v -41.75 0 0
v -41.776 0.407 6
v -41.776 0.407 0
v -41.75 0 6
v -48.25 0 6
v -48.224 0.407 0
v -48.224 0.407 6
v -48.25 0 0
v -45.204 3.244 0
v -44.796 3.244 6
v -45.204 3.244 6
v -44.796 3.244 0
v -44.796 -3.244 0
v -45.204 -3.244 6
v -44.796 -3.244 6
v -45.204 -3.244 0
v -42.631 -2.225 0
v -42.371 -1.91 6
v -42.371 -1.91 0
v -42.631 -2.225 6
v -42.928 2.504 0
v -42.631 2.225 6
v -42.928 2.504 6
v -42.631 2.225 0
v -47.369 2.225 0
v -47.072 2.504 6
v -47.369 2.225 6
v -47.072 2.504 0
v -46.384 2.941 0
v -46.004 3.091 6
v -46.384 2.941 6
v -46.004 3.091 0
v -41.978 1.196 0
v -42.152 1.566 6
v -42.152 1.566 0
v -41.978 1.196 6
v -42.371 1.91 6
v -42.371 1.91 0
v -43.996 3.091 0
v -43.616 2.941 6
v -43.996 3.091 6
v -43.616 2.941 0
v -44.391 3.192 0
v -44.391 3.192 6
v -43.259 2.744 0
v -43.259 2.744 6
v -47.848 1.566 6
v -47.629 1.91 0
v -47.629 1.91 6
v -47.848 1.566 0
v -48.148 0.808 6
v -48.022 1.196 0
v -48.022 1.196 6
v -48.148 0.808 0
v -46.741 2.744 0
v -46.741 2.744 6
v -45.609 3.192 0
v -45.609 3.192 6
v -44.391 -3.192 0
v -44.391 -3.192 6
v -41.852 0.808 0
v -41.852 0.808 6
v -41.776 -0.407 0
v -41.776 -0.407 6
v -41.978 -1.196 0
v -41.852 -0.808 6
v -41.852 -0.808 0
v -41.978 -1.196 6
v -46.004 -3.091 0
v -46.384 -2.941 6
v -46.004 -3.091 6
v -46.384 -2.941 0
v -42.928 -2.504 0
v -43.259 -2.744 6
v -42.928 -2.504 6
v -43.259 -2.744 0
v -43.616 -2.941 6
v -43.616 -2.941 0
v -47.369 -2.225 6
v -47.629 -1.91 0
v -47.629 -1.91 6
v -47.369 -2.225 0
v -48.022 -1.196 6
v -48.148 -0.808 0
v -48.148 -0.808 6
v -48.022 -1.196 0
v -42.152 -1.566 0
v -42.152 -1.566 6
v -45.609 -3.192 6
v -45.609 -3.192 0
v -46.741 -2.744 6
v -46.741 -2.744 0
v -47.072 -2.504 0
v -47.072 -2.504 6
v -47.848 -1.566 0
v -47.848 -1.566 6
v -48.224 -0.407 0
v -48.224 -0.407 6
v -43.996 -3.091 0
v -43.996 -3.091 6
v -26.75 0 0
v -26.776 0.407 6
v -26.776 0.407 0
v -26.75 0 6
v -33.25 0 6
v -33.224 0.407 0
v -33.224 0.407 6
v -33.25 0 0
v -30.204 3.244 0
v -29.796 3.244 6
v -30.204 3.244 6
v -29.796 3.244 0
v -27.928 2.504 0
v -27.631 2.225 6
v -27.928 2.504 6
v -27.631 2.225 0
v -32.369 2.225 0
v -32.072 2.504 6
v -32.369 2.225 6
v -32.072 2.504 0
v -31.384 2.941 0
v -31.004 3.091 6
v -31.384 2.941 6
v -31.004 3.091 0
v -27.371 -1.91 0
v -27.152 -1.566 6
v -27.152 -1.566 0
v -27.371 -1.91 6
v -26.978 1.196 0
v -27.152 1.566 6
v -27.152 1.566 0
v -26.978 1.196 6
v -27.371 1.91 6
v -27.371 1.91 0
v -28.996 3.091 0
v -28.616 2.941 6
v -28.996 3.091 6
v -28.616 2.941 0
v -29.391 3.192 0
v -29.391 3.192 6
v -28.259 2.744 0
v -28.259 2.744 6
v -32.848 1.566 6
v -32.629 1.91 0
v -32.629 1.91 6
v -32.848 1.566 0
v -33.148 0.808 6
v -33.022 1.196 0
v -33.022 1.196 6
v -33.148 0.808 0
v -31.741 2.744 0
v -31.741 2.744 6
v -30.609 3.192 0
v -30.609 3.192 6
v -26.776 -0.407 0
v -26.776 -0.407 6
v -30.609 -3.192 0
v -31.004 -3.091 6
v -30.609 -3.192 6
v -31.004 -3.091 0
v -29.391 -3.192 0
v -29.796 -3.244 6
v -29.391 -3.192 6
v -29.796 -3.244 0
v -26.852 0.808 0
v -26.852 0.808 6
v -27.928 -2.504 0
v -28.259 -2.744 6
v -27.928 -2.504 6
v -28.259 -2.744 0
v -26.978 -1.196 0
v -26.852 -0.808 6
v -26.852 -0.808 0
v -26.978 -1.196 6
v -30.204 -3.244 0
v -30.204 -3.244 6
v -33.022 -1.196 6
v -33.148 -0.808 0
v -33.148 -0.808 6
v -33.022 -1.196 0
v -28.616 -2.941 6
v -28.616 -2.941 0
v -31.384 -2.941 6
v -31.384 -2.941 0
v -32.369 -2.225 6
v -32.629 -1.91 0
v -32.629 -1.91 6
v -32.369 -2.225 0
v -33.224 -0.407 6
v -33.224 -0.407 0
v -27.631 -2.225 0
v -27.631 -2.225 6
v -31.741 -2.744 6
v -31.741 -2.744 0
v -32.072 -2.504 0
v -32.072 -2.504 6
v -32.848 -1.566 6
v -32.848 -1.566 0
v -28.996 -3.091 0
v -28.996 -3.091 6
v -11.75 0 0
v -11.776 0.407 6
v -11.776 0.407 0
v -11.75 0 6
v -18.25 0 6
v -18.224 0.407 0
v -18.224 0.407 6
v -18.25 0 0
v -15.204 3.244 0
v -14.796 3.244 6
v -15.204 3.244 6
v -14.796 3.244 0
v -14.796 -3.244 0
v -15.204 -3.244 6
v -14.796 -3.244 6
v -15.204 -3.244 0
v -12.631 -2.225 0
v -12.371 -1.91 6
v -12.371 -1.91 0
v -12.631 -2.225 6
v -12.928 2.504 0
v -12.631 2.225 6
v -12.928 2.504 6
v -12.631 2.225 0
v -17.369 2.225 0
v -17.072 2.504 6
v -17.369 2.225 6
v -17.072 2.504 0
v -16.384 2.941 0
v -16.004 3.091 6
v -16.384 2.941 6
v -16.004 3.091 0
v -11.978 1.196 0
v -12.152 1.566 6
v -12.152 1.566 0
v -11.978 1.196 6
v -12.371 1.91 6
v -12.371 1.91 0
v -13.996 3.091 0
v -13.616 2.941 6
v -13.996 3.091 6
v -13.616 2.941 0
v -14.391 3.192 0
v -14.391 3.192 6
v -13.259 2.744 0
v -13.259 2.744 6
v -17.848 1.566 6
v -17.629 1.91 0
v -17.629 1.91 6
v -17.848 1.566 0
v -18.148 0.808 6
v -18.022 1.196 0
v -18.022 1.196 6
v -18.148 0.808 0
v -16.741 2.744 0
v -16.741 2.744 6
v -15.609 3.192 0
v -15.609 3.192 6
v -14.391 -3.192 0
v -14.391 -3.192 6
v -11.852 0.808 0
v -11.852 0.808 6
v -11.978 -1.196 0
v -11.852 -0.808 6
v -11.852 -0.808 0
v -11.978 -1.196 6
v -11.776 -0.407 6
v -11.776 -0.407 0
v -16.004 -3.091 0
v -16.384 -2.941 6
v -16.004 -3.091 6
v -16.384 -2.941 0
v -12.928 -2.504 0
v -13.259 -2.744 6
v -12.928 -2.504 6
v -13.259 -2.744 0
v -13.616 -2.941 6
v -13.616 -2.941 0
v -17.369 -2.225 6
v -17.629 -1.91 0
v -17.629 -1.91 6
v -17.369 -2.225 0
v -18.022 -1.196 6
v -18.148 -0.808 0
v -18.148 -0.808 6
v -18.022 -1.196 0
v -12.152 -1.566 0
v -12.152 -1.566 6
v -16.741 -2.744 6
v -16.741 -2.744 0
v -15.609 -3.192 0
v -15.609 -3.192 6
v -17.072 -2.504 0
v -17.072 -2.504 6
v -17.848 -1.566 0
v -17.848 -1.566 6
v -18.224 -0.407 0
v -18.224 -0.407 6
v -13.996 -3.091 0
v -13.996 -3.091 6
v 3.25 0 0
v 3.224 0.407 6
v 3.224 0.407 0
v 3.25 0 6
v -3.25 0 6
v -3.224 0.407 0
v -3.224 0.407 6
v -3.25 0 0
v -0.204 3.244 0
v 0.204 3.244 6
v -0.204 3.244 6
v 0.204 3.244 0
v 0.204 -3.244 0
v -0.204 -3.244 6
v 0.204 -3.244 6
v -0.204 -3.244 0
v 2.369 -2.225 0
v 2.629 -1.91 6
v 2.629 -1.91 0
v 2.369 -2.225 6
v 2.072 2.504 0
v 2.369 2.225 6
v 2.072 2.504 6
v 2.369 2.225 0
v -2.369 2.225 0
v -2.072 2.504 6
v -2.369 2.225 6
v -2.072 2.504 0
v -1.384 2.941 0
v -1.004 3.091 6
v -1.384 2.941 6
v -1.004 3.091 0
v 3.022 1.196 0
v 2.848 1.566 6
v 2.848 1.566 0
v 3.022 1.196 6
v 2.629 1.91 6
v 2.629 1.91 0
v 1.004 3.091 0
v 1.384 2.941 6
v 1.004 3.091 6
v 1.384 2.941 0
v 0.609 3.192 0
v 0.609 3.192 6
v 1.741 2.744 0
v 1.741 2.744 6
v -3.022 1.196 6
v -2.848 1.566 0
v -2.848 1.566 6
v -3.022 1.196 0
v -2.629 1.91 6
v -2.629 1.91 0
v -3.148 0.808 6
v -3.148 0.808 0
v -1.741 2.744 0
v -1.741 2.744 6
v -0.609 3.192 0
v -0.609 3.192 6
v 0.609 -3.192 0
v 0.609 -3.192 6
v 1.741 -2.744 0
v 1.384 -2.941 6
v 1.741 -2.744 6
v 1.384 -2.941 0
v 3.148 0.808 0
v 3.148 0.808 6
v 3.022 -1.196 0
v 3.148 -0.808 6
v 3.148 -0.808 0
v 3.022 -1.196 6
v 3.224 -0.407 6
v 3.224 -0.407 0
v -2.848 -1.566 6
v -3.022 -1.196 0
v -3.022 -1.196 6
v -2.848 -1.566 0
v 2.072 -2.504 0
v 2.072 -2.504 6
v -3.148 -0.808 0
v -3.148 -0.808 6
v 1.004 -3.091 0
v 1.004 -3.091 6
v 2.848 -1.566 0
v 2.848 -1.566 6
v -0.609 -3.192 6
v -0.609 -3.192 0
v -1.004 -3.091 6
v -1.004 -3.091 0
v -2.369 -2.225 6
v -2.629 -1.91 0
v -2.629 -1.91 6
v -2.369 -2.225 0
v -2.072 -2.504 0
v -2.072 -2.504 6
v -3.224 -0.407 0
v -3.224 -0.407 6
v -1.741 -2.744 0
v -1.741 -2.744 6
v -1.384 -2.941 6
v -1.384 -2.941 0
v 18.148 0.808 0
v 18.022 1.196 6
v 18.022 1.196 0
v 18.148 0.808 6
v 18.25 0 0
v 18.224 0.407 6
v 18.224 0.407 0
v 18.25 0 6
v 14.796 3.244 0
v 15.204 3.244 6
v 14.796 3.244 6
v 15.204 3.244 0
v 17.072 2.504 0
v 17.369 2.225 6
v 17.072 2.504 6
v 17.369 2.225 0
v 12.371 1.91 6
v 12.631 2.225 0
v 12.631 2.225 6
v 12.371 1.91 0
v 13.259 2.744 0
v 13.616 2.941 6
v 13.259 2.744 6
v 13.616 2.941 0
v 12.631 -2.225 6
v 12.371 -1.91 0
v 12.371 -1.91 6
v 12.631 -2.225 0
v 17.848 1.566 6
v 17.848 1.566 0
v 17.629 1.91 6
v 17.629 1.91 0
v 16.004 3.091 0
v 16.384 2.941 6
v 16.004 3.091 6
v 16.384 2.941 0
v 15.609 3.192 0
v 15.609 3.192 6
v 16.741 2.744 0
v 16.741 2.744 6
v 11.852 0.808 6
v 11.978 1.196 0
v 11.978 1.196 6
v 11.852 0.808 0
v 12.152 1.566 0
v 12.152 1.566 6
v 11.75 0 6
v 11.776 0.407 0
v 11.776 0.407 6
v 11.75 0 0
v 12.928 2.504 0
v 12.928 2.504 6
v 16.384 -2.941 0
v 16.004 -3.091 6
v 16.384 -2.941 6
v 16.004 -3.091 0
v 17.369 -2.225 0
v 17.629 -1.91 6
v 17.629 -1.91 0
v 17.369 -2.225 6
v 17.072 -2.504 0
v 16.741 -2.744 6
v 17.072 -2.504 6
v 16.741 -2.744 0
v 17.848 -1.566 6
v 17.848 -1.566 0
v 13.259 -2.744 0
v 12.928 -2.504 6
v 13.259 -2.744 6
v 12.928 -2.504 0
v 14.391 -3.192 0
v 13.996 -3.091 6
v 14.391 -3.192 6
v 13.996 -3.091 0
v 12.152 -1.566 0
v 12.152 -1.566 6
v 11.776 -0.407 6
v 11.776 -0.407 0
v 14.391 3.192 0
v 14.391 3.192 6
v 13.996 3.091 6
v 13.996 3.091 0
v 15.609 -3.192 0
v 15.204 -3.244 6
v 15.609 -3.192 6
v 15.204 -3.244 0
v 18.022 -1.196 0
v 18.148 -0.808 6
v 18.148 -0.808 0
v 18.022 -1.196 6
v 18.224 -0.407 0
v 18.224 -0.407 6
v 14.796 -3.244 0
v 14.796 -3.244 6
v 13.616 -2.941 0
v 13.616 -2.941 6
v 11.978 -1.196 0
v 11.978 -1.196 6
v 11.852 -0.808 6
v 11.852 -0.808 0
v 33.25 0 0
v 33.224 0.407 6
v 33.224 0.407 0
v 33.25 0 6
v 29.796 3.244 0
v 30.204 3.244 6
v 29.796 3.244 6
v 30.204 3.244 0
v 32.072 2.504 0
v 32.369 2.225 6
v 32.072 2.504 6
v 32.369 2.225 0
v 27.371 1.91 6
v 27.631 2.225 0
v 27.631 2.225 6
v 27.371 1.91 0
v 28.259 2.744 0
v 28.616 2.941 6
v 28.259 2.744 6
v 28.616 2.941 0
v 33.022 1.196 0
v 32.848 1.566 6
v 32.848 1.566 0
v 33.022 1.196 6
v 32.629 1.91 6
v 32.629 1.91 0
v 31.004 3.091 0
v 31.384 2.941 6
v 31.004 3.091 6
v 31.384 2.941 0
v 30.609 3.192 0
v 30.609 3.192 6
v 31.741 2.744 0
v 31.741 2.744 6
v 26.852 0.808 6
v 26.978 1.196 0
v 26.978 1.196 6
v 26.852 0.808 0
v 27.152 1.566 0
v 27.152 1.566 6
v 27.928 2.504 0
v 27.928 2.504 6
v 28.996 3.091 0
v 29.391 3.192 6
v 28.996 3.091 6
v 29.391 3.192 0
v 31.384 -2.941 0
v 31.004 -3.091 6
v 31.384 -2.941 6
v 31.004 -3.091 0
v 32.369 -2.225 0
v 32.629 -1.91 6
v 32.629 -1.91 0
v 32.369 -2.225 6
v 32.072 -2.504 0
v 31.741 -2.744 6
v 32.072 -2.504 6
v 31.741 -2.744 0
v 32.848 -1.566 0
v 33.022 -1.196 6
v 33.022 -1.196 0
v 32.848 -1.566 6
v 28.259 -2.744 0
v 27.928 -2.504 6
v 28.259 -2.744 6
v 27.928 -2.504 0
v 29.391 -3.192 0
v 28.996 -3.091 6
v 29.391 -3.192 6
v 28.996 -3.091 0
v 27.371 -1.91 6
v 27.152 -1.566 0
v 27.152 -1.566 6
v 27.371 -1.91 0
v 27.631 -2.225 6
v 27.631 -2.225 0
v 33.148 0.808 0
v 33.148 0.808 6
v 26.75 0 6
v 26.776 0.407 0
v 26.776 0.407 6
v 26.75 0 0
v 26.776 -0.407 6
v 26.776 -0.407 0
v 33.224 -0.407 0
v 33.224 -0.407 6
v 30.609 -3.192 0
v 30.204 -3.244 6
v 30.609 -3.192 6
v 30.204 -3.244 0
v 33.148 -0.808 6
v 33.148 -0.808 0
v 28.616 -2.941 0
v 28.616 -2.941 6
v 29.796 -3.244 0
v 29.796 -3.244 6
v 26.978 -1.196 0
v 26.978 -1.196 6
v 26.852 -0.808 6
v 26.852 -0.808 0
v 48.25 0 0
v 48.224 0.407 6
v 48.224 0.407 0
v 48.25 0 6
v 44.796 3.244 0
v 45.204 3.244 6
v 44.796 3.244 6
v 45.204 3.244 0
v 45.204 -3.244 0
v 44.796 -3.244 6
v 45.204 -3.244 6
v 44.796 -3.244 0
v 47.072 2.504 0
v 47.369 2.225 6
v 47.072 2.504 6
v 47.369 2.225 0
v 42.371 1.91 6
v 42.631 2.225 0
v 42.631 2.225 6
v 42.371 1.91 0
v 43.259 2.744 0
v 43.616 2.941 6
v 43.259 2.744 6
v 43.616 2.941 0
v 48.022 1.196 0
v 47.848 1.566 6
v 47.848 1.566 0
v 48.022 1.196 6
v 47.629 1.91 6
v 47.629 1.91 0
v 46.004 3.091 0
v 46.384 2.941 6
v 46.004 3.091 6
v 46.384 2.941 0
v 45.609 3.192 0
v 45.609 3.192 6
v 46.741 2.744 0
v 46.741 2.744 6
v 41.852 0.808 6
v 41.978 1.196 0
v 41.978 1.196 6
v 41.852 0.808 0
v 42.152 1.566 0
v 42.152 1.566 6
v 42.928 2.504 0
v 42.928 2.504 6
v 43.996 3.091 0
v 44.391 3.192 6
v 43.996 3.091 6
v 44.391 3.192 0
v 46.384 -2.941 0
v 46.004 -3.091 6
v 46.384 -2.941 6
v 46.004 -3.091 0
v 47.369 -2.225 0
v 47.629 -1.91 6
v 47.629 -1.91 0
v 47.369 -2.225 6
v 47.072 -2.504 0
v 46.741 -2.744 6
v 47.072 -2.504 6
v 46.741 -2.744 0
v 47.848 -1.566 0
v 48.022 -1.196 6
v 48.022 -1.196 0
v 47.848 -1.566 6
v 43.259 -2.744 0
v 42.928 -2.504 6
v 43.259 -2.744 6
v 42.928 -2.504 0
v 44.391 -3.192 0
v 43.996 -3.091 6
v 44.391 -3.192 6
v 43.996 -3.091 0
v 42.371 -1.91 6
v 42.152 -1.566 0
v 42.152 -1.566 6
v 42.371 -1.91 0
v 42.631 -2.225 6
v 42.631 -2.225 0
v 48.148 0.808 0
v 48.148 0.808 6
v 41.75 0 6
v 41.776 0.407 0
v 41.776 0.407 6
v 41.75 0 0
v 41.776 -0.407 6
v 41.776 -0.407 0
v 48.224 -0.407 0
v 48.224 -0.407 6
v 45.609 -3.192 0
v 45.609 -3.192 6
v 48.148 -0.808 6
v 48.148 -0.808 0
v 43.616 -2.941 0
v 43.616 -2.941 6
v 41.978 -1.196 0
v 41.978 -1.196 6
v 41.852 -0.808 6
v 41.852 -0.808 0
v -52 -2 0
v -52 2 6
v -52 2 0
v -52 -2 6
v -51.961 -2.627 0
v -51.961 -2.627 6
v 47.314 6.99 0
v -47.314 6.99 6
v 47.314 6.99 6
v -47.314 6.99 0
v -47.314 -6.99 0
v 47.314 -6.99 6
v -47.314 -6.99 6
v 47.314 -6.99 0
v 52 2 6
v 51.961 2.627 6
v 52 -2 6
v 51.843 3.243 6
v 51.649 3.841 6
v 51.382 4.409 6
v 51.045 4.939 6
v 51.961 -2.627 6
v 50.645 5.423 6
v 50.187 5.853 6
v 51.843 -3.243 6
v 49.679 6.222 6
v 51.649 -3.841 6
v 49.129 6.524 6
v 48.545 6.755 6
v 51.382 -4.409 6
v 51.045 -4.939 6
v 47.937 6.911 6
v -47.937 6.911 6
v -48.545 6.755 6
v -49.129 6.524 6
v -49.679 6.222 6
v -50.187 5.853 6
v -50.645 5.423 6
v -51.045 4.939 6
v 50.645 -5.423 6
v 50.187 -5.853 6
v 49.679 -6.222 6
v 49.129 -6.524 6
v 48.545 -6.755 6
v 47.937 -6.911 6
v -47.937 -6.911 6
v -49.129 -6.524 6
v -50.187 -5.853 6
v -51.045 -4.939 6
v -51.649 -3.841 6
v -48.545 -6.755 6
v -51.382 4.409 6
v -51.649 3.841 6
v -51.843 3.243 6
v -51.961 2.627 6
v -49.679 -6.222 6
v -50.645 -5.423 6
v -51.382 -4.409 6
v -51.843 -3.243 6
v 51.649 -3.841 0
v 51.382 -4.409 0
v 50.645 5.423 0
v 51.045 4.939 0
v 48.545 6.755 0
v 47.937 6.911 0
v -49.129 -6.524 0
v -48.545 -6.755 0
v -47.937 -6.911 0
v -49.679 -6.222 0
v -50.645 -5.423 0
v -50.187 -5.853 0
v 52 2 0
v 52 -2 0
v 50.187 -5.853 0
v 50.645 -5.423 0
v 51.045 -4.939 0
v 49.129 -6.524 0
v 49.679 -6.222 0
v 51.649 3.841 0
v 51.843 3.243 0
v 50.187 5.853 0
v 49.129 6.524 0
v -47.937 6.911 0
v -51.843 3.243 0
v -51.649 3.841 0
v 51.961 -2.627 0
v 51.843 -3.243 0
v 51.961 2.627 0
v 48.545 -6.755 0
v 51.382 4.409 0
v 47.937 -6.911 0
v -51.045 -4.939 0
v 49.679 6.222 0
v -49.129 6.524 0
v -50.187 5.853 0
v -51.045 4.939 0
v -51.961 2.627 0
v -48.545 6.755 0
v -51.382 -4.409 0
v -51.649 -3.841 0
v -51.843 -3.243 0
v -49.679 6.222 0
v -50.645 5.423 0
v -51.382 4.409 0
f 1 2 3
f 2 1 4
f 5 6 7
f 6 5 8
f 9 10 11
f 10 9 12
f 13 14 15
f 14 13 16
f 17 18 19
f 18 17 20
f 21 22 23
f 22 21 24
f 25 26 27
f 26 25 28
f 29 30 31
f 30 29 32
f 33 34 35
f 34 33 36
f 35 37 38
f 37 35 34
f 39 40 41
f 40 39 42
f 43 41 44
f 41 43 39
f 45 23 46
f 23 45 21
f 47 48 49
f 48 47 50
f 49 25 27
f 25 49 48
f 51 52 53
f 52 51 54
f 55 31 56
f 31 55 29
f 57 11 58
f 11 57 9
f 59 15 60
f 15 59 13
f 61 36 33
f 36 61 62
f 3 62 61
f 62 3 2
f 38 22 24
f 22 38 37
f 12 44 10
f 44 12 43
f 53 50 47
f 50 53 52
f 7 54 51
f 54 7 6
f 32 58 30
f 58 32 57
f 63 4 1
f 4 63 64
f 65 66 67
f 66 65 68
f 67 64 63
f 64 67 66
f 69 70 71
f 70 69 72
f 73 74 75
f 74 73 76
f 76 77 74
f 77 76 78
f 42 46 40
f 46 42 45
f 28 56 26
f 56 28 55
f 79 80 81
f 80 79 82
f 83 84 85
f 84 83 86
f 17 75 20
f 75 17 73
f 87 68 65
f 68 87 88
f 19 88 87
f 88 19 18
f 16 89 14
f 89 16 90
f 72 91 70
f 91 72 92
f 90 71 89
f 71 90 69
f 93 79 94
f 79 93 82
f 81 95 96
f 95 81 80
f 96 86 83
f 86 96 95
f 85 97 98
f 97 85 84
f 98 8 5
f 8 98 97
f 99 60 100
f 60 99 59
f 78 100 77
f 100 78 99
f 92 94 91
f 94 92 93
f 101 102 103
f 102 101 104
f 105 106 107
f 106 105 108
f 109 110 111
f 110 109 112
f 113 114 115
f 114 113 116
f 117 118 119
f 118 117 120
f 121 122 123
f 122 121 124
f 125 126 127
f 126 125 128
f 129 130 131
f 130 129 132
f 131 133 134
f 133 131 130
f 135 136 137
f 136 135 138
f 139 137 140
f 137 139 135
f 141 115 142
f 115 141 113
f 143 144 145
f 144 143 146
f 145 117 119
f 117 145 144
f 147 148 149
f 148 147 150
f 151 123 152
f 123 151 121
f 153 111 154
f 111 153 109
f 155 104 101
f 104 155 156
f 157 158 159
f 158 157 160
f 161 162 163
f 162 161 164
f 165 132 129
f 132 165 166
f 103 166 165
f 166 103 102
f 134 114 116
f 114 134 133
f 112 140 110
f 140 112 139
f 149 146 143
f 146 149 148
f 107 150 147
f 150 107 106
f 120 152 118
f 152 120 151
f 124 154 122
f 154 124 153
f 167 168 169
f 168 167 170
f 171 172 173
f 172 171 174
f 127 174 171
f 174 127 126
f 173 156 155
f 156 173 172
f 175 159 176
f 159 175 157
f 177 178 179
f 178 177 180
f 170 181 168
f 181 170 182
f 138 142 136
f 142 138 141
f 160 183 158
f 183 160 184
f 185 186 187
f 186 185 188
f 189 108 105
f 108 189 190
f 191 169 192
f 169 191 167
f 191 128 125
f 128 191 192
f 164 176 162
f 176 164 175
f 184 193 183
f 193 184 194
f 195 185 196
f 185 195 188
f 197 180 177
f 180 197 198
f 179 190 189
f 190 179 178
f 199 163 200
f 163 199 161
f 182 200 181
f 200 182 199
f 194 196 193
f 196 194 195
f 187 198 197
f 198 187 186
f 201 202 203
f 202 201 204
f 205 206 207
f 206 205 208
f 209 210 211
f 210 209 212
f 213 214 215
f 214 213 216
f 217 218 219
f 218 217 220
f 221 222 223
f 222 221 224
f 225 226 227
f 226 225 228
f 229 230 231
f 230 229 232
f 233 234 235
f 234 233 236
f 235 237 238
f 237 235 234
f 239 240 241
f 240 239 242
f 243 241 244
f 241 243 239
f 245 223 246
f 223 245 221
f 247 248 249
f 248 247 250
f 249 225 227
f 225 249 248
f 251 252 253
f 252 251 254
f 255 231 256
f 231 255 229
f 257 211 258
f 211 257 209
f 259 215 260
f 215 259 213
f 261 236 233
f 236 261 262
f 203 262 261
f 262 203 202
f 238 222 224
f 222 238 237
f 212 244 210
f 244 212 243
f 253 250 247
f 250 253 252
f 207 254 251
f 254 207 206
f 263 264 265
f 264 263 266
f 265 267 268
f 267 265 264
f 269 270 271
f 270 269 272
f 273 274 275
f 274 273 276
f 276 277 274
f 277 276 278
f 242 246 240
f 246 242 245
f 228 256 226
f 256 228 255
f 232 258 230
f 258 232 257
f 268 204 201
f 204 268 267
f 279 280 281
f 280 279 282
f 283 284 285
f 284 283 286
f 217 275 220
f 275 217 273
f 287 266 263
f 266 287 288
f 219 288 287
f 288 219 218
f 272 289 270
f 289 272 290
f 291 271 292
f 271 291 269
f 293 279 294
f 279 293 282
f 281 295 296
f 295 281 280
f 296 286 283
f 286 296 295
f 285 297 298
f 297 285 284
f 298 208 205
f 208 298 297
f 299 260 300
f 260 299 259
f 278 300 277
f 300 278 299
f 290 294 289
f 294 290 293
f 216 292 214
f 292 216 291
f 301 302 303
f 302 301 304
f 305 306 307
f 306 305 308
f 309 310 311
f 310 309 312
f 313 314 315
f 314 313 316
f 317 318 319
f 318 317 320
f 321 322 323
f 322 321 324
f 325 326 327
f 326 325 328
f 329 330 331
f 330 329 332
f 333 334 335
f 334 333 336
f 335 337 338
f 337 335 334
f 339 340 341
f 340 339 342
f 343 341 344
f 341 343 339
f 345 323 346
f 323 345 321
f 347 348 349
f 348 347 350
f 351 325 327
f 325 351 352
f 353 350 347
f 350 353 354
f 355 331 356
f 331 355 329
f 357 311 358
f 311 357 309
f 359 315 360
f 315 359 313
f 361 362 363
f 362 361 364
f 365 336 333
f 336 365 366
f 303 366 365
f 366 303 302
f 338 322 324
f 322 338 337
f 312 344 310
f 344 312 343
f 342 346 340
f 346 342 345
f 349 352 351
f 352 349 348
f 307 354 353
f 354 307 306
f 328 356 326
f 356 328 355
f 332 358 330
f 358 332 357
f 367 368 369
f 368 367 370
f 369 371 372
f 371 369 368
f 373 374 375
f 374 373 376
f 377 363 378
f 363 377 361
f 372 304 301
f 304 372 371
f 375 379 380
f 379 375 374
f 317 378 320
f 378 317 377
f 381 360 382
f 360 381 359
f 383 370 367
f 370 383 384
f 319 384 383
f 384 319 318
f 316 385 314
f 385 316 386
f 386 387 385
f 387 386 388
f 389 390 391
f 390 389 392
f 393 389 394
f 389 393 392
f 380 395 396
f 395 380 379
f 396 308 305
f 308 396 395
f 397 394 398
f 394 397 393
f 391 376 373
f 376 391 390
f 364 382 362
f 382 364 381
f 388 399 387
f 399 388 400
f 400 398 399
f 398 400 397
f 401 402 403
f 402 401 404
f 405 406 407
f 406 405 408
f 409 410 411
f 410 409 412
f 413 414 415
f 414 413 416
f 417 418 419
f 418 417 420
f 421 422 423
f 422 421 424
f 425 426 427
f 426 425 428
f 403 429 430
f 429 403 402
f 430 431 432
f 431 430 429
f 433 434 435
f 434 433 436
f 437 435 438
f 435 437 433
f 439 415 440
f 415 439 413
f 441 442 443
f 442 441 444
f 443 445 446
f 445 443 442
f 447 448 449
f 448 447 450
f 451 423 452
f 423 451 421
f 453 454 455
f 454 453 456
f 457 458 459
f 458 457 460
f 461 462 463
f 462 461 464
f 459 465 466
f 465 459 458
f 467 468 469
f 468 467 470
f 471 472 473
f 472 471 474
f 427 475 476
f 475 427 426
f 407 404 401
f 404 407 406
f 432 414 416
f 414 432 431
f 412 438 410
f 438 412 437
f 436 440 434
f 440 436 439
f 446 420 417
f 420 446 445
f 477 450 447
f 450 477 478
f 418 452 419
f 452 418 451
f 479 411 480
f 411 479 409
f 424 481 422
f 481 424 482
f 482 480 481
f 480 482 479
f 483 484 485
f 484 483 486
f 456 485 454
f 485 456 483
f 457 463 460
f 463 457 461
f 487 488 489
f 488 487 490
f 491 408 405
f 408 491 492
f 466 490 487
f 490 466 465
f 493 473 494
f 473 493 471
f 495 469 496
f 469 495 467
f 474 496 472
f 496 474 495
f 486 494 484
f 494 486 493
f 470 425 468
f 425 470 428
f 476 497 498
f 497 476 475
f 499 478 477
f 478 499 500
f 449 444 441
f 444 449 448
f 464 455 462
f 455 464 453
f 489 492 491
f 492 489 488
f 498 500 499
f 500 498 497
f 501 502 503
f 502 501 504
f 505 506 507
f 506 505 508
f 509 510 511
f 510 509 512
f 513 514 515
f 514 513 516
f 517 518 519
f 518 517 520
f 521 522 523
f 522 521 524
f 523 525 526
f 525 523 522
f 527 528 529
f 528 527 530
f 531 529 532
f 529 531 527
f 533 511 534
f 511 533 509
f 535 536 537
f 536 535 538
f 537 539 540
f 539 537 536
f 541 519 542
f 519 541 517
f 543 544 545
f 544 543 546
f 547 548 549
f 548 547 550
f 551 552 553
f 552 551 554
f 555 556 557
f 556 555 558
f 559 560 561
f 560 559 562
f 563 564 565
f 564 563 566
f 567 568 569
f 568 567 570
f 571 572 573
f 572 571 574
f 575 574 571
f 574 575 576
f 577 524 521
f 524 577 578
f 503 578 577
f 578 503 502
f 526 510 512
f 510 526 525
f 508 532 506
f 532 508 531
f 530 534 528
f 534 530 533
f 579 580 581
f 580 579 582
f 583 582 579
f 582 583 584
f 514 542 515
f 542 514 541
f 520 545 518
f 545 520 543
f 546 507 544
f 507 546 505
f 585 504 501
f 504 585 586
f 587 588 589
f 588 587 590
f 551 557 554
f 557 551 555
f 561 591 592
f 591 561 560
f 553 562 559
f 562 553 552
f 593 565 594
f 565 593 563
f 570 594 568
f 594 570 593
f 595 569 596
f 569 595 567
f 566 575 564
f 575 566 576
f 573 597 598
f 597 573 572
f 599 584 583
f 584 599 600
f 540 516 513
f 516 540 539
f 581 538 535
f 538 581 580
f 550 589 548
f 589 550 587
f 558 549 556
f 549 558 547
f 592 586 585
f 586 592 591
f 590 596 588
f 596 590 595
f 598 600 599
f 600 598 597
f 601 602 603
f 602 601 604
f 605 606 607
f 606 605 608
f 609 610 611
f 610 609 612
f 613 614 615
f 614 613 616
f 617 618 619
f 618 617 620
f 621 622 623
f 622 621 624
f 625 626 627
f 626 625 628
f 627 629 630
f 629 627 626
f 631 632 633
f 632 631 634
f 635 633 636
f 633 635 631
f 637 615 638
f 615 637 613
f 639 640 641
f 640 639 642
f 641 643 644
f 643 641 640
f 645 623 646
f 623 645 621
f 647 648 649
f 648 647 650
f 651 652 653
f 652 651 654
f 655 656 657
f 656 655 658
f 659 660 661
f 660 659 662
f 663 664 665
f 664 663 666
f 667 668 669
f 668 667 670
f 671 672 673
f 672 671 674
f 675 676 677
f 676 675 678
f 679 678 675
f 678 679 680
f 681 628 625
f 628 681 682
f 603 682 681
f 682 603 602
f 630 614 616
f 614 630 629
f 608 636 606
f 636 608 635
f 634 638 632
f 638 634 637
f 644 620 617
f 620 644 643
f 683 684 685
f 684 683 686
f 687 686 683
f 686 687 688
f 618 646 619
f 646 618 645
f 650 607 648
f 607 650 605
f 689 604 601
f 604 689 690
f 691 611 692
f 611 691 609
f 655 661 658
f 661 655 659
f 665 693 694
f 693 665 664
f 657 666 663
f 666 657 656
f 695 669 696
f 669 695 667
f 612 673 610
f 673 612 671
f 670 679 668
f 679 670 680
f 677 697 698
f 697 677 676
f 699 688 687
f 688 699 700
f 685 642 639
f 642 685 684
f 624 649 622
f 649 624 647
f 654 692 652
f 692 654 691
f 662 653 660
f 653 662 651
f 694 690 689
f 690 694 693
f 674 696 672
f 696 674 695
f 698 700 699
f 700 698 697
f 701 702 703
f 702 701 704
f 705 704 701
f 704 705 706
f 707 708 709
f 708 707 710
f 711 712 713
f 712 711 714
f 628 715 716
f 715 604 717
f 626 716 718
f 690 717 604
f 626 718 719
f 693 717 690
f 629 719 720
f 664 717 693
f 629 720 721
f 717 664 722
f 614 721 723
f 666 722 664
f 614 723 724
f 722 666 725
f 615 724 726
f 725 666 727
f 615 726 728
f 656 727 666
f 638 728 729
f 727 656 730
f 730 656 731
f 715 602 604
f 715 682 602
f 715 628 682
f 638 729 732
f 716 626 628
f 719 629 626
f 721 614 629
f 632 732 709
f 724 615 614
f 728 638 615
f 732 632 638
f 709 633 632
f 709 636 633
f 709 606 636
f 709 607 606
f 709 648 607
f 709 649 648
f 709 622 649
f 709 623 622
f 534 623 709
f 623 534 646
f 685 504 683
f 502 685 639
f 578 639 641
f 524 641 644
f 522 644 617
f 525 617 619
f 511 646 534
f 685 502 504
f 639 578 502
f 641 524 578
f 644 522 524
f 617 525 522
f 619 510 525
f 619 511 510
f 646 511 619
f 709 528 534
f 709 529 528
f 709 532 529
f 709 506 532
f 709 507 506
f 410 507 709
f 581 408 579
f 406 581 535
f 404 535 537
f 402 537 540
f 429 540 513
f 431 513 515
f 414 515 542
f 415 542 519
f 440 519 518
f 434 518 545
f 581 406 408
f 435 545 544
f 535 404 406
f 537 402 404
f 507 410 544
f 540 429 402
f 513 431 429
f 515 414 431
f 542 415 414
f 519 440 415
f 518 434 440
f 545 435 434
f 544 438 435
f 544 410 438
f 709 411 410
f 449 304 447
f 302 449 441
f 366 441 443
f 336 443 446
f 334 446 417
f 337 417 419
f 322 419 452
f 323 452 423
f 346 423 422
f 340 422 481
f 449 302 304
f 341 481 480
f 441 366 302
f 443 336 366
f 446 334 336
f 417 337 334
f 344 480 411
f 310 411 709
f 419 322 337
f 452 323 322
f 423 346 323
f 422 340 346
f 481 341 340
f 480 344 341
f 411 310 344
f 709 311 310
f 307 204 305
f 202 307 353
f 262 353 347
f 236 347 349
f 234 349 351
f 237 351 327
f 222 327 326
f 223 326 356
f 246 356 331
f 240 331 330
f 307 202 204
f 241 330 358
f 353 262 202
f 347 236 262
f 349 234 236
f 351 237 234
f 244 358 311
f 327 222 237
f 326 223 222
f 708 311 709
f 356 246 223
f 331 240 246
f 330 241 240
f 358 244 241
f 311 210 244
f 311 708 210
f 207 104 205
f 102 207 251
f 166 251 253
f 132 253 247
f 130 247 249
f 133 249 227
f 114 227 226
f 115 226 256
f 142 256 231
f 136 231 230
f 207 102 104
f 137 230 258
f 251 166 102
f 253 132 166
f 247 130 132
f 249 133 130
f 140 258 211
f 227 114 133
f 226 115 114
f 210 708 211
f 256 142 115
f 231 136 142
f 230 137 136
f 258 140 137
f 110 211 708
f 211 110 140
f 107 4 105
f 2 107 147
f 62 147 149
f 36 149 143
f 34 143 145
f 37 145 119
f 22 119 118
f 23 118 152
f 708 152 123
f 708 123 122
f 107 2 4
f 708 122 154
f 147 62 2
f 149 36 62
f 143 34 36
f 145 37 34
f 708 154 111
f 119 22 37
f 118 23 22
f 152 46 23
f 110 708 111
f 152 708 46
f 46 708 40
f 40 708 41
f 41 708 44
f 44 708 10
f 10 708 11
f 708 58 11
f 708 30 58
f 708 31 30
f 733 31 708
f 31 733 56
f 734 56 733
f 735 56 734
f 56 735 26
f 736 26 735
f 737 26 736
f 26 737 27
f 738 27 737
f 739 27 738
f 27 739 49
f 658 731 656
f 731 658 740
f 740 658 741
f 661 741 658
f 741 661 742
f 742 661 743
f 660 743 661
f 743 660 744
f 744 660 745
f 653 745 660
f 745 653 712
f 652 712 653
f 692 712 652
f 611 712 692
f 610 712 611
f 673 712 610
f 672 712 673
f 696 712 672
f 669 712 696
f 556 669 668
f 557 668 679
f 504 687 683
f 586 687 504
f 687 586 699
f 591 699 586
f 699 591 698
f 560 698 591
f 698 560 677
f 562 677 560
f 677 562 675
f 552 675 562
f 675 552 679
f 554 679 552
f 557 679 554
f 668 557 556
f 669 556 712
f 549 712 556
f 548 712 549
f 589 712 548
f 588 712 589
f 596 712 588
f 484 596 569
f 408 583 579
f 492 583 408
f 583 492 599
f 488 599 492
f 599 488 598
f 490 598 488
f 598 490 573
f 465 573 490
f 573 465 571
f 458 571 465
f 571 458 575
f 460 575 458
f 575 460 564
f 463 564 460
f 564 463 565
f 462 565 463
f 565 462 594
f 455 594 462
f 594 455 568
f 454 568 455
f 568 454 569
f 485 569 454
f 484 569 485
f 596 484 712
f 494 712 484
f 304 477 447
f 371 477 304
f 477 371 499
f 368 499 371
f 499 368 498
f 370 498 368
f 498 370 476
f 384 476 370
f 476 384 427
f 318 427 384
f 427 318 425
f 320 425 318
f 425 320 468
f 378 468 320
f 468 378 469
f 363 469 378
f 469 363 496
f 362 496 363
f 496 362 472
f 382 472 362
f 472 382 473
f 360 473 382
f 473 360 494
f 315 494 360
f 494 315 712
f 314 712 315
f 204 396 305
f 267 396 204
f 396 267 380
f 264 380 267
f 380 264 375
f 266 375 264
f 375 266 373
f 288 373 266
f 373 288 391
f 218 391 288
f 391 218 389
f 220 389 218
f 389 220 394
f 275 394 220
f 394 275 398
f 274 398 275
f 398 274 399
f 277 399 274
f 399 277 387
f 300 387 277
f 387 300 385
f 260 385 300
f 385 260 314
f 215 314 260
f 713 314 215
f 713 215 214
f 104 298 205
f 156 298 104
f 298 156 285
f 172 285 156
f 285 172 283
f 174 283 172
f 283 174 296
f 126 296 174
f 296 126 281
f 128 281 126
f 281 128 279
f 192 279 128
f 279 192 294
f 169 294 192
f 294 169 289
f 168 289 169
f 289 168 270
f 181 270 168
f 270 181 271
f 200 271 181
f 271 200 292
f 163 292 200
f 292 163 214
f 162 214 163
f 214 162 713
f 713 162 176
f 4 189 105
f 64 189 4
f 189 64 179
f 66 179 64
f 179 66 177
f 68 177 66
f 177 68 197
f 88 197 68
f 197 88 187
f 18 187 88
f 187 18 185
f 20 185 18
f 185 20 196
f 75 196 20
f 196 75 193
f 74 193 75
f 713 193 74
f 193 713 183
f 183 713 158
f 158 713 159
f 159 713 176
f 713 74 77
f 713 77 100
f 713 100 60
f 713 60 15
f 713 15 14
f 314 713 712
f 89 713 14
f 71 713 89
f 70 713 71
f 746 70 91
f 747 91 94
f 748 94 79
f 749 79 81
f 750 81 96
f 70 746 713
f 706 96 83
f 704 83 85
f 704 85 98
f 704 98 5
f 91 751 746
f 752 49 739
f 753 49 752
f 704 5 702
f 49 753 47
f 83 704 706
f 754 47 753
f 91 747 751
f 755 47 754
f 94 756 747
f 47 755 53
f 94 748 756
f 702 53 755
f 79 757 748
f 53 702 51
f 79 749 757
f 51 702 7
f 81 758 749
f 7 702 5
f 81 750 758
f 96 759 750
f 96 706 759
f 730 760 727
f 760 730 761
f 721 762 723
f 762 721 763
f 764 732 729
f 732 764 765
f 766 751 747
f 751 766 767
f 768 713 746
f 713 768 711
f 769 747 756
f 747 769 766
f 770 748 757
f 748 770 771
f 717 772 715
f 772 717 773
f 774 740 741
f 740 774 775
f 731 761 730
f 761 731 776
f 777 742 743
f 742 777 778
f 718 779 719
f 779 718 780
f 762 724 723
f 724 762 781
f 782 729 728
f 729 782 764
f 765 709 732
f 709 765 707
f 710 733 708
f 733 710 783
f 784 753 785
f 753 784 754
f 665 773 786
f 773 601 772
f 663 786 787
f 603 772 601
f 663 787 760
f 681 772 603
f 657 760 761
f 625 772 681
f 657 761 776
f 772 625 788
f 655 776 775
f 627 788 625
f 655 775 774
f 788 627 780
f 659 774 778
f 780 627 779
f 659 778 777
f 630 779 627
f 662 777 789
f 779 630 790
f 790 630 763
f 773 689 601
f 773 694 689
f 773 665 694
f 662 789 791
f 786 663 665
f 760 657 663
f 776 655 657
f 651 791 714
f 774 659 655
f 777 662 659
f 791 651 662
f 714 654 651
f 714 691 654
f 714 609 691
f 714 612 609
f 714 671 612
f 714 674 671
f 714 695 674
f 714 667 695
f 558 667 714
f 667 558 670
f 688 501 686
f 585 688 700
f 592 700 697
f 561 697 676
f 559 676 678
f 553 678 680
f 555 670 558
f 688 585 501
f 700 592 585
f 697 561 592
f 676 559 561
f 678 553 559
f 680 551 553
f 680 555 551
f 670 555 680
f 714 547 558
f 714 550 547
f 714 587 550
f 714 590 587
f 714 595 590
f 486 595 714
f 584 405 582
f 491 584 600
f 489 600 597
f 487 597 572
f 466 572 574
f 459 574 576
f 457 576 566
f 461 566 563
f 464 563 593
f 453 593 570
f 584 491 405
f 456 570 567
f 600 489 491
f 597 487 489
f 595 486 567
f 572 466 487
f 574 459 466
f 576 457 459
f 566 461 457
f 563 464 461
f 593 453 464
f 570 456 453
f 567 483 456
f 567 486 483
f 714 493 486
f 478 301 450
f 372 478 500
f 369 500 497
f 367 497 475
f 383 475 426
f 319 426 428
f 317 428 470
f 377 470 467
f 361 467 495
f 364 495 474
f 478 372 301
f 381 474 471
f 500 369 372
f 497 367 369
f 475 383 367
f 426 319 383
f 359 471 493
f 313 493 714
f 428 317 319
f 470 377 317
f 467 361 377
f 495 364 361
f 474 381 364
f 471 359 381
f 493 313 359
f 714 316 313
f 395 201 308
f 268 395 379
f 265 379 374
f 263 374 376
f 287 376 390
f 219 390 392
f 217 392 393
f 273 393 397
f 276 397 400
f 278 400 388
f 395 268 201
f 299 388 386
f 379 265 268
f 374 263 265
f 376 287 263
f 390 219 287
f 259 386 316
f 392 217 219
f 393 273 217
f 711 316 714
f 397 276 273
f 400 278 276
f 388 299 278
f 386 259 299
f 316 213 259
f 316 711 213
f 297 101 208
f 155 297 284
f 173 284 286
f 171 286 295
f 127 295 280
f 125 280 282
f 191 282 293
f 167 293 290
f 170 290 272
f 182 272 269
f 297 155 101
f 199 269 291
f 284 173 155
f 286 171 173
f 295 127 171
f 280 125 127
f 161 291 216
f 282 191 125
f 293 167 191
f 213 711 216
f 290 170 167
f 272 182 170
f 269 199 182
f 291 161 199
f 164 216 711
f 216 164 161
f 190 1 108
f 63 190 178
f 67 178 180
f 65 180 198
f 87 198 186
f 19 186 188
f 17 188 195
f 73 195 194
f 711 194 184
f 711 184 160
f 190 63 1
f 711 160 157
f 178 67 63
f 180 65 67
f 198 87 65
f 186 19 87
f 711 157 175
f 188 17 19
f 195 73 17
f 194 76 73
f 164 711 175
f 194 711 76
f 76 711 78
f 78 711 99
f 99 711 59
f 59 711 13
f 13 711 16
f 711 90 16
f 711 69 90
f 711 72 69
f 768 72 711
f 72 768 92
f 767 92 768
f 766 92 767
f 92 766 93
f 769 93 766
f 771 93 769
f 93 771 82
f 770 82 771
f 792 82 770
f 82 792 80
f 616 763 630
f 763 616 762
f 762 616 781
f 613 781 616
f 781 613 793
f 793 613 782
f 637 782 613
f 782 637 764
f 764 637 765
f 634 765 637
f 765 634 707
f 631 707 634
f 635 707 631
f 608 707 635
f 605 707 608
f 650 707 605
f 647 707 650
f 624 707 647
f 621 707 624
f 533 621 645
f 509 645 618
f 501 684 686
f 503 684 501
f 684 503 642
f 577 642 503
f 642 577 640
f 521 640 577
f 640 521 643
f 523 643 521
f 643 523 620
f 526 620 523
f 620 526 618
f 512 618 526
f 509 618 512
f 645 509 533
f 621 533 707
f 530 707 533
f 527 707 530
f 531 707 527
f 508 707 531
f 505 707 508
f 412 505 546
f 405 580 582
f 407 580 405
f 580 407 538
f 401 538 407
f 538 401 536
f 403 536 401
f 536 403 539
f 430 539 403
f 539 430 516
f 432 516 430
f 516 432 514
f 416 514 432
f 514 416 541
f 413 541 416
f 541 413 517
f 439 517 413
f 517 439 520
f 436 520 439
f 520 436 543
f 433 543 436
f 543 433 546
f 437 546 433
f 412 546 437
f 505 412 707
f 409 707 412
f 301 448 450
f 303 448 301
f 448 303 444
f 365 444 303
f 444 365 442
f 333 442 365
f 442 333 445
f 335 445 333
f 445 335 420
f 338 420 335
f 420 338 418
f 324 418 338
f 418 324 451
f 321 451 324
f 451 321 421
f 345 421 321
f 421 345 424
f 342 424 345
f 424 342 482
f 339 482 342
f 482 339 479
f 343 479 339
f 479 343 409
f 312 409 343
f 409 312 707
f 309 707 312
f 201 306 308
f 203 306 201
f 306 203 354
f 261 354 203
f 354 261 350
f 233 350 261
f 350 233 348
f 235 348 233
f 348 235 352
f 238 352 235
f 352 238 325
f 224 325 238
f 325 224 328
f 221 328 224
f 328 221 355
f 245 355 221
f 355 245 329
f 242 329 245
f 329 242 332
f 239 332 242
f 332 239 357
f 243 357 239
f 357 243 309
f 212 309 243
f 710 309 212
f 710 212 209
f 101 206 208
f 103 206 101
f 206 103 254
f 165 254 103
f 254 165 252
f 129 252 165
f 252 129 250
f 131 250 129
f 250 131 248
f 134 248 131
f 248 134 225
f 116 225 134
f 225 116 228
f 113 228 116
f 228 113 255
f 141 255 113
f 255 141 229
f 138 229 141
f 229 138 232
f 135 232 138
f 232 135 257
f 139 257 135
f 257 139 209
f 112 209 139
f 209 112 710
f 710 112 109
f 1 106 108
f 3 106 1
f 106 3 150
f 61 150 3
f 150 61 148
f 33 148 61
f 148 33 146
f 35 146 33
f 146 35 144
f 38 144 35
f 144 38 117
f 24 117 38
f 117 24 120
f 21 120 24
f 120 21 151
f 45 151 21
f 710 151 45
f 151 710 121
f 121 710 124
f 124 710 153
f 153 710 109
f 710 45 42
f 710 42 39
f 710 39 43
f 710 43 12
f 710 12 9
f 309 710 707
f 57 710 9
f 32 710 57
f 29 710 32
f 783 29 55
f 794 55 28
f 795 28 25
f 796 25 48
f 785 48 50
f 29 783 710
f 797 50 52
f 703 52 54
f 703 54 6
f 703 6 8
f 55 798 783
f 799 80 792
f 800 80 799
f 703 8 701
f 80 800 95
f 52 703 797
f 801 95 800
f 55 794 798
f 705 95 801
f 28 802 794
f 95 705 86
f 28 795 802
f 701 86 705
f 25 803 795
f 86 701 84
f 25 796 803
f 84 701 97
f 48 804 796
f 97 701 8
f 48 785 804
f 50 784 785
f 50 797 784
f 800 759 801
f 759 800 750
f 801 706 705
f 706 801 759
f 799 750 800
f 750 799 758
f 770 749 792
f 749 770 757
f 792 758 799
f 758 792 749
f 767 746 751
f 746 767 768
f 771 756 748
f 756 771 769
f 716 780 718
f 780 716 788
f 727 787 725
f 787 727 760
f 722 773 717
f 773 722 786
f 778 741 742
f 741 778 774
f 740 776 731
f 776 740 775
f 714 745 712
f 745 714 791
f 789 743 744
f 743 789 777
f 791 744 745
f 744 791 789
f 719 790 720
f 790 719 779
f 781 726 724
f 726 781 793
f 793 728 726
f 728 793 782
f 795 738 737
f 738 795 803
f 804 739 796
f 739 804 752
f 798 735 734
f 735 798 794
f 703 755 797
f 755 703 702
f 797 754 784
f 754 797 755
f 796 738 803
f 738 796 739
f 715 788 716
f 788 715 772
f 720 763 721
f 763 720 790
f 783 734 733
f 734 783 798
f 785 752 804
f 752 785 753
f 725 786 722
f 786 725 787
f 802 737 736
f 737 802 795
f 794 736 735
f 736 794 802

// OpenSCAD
$fn = 50;


difference() {
	union() {
		hull() {
			translate(v = [-47.0000000000, 2.0000000000, 0]) {
				cylinder(h = 6, r = 5);
			}
			translate(v = [47.0000000000, 2.0000000000, 0]) {
				cylinder(h = 6, r = 5);
			}
			translate(v = [-47.0000000000, -2.0000000000, 0]) {
				cylinder(h = 6, r = 5);
			}
			translate(v = [47.0000000000, -2.0000000000, 0]) {
				cylinder(h = 6, r = 5);
			}
		}
	}
	union() {
		translate(v = [-45.0000000000, 0.0000000000, -100.0000000000]) {
			cylinder(h = 200, r = 3.2500000000);
		}
		translate(v = [-30.0000000000, 0.0000000000, -100.0000000000]) {
			cylinder(h = 200, r = 3.2500000000);
		}
		translate(v = [-15.0000000000, 0.0000000000, -100.0000000000]) {
			cylinder(h = 200, r = 3.2500000000);
		}
		translate(v = [0.0000000000, 0.0000000000, -100.0000000000]) {
			cylinder(h = 200, r = 3.2500000000);
		}
		translate(v = [15.0000000000, 0.0000000000, -100.0000000000]) {
			cylinder(h = 200, r = 3.2500000000);
		}
		translate(v = [30.0000000000, 0.0000000000, -100.0000000000]) {
			cylinder(h = 200, r = 3.2500000000);
		}
		translate(v = [45.0000000000, 0.0000000000, -100.0000000000]) {
			cylinder(h = 200, r = 3.2500000000);
		}
	}
}
